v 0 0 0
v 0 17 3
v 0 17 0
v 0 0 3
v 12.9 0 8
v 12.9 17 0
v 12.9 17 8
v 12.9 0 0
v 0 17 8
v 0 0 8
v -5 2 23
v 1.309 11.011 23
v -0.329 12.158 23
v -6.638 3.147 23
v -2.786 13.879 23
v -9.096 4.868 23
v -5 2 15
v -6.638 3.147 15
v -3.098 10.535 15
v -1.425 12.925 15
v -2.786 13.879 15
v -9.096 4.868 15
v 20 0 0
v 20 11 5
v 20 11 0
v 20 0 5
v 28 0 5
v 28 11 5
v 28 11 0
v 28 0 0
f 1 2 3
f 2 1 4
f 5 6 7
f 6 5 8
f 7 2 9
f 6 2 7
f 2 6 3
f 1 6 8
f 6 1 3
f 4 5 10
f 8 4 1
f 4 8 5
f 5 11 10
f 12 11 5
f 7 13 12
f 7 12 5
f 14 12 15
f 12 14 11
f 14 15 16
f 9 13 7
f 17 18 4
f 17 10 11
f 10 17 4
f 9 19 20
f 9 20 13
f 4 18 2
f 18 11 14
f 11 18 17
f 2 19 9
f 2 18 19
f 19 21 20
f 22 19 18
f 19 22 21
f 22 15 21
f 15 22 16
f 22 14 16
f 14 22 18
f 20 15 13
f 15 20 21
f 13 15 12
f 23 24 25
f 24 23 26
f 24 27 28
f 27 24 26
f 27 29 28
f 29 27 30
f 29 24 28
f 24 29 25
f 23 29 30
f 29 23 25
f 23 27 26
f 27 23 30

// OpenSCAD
//This is the top for the part cooling fan.
//Printed in two parts No infill, no bottom layer.
//Two top layers for the big part, no top layer for the small part.
//Hole must be cut in the larger part after printing, too lazy to do
//the scad work.

cube([12.9,17,5]);

hull(){
translate([0,0,3])
    cube([12.9,17,5]);
translate([-5,2,15])
    rotate([-35,-90,0])
    cube([8,11,2]);
}

translate([-5,2,15])
    rotate([-35,-90,0])
    cube([8,11,5]);

translate([20,0,0])
    cube([8,11,5]);
